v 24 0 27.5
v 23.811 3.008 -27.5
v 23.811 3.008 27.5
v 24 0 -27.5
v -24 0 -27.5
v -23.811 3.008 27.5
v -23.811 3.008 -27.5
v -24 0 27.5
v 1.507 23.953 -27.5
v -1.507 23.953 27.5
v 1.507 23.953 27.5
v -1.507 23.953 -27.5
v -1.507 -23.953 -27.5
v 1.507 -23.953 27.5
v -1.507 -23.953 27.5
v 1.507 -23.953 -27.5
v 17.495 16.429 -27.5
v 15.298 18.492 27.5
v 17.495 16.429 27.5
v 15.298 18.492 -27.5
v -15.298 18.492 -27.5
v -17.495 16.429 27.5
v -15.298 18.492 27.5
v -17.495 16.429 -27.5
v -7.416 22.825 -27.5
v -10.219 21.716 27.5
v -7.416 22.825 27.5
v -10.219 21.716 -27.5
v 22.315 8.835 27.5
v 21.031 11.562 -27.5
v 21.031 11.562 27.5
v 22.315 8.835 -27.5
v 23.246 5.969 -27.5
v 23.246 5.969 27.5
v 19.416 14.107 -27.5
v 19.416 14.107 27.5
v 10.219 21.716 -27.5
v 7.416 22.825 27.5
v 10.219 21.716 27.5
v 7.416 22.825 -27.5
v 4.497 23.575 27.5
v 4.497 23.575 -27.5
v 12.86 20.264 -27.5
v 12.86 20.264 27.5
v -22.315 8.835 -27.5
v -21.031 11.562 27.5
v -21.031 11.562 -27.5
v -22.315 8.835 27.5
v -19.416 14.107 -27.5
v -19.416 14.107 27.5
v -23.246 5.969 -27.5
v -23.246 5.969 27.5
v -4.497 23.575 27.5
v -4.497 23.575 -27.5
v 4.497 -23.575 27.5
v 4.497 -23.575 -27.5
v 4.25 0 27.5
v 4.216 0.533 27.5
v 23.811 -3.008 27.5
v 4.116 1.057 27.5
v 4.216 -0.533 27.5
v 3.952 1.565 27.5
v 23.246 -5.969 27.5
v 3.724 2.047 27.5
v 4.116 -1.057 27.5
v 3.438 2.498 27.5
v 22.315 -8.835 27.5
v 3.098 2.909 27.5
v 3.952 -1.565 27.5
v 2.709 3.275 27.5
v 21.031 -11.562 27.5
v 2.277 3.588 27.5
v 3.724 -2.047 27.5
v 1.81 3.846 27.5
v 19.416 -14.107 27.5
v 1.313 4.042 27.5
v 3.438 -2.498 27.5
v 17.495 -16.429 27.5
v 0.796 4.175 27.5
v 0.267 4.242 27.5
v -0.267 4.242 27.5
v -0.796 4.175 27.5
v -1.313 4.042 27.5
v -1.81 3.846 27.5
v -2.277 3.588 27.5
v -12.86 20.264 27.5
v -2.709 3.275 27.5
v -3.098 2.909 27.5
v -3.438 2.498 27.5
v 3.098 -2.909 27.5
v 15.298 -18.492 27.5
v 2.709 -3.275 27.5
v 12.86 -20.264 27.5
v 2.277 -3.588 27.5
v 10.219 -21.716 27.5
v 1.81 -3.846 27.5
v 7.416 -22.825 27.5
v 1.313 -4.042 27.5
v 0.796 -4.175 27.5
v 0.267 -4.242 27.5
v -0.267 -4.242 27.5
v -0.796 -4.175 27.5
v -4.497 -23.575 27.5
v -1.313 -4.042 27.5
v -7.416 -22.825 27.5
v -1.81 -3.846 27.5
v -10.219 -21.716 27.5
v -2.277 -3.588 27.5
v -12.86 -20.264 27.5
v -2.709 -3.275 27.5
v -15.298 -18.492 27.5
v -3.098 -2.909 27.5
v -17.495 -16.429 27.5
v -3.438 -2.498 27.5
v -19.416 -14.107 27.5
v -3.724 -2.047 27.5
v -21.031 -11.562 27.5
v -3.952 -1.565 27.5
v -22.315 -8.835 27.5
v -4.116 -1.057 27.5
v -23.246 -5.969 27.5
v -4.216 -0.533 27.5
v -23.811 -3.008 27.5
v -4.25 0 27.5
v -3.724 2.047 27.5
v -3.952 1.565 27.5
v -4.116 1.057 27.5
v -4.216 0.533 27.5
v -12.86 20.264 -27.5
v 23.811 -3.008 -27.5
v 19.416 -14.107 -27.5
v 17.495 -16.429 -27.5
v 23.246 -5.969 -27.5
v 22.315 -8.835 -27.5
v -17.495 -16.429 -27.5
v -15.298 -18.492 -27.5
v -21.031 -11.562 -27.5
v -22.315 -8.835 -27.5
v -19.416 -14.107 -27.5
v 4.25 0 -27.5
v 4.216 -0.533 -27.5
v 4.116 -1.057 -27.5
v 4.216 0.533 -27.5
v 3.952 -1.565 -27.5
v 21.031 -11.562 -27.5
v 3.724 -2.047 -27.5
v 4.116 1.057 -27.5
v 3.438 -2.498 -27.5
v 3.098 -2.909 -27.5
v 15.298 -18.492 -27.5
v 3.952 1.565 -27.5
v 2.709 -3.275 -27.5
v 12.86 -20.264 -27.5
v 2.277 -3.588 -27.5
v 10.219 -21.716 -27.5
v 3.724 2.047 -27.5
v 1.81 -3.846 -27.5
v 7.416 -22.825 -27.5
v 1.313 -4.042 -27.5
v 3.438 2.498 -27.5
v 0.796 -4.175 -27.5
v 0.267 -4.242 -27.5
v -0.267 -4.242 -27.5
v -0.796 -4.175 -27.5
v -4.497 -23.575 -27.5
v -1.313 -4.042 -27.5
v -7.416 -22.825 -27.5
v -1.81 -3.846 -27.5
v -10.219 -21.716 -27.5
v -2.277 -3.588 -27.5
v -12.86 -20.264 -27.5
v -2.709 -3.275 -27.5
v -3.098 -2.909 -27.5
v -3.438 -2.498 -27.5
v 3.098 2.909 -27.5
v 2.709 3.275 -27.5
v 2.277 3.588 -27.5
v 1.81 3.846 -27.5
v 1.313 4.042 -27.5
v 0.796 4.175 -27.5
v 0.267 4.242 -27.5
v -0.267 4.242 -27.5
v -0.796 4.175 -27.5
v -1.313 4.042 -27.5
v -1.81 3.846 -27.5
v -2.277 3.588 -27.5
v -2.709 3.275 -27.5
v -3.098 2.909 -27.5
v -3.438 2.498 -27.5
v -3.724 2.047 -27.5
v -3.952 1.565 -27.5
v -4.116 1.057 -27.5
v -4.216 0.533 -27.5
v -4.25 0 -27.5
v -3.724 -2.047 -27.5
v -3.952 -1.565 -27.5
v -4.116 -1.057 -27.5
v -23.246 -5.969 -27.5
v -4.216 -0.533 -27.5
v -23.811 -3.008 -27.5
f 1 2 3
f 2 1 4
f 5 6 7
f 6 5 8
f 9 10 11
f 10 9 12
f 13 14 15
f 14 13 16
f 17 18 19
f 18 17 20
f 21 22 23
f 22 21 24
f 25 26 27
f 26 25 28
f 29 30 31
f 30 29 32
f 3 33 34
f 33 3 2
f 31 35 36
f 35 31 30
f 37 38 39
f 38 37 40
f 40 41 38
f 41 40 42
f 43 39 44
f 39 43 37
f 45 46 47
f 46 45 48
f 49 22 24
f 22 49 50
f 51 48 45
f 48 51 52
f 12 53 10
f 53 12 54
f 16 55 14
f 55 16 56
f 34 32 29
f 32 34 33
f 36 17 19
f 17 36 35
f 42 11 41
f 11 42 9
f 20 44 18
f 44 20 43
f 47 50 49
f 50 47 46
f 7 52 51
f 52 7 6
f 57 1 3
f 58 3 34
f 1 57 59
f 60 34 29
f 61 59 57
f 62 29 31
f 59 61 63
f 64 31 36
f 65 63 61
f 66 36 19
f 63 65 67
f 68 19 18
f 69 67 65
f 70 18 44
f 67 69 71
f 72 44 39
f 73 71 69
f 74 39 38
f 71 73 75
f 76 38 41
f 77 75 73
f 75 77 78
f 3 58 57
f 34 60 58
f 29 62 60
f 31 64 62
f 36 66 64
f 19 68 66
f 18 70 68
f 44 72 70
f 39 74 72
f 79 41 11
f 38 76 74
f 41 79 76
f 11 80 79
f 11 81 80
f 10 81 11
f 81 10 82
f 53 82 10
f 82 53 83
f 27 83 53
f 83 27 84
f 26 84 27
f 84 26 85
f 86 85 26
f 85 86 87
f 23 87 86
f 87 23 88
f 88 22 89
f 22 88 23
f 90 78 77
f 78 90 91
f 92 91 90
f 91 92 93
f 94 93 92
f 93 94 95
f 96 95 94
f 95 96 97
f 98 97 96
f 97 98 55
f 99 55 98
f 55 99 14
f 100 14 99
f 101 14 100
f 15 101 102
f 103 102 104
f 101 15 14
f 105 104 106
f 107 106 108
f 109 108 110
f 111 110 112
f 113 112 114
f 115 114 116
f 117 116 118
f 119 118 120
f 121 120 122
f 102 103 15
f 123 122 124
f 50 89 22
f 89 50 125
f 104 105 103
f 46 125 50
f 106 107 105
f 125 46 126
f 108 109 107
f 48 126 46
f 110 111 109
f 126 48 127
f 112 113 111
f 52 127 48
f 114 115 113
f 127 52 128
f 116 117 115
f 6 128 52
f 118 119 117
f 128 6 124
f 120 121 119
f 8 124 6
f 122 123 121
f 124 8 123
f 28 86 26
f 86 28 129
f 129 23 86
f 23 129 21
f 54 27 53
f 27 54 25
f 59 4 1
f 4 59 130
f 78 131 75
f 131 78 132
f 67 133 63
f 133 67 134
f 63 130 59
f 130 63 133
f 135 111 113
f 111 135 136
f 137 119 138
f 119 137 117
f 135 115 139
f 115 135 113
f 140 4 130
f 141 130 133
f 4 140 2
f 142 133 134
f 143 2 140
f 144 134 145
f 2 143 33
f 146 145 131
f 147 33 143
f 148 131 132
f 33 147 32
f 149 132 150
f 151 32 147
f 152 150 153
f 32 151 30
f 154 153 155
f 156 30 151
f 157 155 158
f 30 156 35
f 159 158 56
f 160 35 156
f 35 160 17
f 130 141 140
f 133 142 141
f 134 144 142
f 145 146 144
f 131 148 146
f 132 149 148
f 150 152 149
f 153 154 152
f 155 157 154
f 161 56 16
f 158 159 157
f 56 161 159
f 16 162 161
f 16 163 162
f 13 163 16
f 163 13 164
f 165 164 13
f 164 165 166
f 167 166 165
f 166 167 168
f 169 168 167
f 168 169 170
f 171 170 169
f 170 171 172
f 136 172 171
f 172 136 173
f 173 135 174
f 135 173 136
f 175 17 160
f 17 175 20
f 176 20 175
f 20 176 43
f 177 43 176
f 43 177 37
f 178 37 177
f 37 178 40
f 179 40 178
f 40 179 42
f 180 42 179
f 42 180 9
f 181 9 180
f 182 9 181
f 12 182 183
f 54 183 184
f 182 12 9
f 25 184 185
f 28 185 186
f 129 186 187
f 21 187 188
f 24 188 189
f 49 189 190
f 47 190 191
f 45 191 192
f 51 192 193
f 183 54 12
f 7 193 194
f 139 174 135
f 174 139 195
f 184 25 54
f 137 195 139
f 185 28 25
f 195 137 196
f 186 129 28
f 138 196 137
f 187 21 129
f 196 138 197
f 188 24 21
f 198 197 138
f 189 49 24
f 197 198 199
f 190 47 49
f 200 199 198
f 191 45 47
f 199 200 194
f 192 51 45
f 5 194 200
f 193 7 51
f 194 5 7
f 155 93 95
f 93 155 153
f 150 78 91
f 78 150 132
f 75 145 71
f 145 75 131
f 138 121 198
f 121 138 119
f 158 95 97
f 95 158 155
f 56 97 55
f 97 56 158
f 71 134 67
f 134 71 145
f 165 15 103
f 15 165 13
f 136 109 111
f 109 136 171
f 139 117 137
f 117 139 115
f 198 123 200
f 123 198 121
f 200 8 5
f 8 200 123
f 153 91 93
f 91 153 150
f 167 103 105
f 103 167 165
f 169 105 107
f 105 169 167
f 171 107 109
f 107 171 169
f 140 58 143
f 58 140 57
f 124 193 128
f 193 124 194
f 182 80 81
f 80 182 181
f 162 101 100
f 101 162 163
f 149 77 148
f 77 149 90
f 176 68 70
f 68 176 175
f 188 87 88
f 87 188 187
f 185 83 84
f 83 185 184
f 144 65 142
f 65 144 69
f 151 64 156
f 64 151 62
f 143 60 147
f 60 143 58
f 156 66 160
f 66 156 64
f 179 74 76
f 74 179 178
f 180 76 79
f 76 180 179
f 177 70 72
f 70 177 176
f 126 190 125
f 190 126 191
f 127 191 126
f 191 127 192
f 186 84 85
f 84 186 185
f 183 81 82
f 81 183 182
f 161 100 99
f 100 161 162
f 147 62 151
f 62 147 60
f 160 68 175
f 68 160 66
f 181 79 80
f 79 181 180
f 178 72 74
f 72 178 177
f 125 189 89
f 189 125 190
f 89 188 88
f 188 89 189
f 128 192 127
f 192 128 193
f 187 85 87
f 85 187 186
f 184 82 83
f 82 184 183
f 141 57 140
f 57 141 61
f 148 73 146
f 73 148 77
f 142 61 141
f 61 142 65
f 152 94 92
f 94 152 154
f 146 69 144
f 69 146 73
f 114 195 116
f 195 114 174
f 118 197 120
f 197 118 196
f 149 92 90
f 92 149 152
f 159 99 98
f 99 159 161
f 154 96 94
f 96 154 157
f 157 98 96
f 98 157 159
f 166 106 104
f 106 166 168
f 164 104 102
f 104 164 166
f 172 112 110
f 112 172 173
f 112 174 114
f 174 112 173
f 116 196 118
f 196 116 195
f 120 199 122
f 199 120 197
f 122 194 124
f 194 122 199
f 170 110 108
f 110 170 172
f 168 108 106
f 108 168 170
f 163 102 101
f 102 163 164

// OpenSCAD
$fn = 50;


difference() {
	union() {
		translate(v = [0, 0, -27.5000000000]) {
			cylinder(h = 55, r = 24.0000000000);
		}
	}
	union() {
		translate(v = [0, 0, -100.0000000000]) {
			cylinder(h = 200, r = 4.2500000000);
		}
	}
}
